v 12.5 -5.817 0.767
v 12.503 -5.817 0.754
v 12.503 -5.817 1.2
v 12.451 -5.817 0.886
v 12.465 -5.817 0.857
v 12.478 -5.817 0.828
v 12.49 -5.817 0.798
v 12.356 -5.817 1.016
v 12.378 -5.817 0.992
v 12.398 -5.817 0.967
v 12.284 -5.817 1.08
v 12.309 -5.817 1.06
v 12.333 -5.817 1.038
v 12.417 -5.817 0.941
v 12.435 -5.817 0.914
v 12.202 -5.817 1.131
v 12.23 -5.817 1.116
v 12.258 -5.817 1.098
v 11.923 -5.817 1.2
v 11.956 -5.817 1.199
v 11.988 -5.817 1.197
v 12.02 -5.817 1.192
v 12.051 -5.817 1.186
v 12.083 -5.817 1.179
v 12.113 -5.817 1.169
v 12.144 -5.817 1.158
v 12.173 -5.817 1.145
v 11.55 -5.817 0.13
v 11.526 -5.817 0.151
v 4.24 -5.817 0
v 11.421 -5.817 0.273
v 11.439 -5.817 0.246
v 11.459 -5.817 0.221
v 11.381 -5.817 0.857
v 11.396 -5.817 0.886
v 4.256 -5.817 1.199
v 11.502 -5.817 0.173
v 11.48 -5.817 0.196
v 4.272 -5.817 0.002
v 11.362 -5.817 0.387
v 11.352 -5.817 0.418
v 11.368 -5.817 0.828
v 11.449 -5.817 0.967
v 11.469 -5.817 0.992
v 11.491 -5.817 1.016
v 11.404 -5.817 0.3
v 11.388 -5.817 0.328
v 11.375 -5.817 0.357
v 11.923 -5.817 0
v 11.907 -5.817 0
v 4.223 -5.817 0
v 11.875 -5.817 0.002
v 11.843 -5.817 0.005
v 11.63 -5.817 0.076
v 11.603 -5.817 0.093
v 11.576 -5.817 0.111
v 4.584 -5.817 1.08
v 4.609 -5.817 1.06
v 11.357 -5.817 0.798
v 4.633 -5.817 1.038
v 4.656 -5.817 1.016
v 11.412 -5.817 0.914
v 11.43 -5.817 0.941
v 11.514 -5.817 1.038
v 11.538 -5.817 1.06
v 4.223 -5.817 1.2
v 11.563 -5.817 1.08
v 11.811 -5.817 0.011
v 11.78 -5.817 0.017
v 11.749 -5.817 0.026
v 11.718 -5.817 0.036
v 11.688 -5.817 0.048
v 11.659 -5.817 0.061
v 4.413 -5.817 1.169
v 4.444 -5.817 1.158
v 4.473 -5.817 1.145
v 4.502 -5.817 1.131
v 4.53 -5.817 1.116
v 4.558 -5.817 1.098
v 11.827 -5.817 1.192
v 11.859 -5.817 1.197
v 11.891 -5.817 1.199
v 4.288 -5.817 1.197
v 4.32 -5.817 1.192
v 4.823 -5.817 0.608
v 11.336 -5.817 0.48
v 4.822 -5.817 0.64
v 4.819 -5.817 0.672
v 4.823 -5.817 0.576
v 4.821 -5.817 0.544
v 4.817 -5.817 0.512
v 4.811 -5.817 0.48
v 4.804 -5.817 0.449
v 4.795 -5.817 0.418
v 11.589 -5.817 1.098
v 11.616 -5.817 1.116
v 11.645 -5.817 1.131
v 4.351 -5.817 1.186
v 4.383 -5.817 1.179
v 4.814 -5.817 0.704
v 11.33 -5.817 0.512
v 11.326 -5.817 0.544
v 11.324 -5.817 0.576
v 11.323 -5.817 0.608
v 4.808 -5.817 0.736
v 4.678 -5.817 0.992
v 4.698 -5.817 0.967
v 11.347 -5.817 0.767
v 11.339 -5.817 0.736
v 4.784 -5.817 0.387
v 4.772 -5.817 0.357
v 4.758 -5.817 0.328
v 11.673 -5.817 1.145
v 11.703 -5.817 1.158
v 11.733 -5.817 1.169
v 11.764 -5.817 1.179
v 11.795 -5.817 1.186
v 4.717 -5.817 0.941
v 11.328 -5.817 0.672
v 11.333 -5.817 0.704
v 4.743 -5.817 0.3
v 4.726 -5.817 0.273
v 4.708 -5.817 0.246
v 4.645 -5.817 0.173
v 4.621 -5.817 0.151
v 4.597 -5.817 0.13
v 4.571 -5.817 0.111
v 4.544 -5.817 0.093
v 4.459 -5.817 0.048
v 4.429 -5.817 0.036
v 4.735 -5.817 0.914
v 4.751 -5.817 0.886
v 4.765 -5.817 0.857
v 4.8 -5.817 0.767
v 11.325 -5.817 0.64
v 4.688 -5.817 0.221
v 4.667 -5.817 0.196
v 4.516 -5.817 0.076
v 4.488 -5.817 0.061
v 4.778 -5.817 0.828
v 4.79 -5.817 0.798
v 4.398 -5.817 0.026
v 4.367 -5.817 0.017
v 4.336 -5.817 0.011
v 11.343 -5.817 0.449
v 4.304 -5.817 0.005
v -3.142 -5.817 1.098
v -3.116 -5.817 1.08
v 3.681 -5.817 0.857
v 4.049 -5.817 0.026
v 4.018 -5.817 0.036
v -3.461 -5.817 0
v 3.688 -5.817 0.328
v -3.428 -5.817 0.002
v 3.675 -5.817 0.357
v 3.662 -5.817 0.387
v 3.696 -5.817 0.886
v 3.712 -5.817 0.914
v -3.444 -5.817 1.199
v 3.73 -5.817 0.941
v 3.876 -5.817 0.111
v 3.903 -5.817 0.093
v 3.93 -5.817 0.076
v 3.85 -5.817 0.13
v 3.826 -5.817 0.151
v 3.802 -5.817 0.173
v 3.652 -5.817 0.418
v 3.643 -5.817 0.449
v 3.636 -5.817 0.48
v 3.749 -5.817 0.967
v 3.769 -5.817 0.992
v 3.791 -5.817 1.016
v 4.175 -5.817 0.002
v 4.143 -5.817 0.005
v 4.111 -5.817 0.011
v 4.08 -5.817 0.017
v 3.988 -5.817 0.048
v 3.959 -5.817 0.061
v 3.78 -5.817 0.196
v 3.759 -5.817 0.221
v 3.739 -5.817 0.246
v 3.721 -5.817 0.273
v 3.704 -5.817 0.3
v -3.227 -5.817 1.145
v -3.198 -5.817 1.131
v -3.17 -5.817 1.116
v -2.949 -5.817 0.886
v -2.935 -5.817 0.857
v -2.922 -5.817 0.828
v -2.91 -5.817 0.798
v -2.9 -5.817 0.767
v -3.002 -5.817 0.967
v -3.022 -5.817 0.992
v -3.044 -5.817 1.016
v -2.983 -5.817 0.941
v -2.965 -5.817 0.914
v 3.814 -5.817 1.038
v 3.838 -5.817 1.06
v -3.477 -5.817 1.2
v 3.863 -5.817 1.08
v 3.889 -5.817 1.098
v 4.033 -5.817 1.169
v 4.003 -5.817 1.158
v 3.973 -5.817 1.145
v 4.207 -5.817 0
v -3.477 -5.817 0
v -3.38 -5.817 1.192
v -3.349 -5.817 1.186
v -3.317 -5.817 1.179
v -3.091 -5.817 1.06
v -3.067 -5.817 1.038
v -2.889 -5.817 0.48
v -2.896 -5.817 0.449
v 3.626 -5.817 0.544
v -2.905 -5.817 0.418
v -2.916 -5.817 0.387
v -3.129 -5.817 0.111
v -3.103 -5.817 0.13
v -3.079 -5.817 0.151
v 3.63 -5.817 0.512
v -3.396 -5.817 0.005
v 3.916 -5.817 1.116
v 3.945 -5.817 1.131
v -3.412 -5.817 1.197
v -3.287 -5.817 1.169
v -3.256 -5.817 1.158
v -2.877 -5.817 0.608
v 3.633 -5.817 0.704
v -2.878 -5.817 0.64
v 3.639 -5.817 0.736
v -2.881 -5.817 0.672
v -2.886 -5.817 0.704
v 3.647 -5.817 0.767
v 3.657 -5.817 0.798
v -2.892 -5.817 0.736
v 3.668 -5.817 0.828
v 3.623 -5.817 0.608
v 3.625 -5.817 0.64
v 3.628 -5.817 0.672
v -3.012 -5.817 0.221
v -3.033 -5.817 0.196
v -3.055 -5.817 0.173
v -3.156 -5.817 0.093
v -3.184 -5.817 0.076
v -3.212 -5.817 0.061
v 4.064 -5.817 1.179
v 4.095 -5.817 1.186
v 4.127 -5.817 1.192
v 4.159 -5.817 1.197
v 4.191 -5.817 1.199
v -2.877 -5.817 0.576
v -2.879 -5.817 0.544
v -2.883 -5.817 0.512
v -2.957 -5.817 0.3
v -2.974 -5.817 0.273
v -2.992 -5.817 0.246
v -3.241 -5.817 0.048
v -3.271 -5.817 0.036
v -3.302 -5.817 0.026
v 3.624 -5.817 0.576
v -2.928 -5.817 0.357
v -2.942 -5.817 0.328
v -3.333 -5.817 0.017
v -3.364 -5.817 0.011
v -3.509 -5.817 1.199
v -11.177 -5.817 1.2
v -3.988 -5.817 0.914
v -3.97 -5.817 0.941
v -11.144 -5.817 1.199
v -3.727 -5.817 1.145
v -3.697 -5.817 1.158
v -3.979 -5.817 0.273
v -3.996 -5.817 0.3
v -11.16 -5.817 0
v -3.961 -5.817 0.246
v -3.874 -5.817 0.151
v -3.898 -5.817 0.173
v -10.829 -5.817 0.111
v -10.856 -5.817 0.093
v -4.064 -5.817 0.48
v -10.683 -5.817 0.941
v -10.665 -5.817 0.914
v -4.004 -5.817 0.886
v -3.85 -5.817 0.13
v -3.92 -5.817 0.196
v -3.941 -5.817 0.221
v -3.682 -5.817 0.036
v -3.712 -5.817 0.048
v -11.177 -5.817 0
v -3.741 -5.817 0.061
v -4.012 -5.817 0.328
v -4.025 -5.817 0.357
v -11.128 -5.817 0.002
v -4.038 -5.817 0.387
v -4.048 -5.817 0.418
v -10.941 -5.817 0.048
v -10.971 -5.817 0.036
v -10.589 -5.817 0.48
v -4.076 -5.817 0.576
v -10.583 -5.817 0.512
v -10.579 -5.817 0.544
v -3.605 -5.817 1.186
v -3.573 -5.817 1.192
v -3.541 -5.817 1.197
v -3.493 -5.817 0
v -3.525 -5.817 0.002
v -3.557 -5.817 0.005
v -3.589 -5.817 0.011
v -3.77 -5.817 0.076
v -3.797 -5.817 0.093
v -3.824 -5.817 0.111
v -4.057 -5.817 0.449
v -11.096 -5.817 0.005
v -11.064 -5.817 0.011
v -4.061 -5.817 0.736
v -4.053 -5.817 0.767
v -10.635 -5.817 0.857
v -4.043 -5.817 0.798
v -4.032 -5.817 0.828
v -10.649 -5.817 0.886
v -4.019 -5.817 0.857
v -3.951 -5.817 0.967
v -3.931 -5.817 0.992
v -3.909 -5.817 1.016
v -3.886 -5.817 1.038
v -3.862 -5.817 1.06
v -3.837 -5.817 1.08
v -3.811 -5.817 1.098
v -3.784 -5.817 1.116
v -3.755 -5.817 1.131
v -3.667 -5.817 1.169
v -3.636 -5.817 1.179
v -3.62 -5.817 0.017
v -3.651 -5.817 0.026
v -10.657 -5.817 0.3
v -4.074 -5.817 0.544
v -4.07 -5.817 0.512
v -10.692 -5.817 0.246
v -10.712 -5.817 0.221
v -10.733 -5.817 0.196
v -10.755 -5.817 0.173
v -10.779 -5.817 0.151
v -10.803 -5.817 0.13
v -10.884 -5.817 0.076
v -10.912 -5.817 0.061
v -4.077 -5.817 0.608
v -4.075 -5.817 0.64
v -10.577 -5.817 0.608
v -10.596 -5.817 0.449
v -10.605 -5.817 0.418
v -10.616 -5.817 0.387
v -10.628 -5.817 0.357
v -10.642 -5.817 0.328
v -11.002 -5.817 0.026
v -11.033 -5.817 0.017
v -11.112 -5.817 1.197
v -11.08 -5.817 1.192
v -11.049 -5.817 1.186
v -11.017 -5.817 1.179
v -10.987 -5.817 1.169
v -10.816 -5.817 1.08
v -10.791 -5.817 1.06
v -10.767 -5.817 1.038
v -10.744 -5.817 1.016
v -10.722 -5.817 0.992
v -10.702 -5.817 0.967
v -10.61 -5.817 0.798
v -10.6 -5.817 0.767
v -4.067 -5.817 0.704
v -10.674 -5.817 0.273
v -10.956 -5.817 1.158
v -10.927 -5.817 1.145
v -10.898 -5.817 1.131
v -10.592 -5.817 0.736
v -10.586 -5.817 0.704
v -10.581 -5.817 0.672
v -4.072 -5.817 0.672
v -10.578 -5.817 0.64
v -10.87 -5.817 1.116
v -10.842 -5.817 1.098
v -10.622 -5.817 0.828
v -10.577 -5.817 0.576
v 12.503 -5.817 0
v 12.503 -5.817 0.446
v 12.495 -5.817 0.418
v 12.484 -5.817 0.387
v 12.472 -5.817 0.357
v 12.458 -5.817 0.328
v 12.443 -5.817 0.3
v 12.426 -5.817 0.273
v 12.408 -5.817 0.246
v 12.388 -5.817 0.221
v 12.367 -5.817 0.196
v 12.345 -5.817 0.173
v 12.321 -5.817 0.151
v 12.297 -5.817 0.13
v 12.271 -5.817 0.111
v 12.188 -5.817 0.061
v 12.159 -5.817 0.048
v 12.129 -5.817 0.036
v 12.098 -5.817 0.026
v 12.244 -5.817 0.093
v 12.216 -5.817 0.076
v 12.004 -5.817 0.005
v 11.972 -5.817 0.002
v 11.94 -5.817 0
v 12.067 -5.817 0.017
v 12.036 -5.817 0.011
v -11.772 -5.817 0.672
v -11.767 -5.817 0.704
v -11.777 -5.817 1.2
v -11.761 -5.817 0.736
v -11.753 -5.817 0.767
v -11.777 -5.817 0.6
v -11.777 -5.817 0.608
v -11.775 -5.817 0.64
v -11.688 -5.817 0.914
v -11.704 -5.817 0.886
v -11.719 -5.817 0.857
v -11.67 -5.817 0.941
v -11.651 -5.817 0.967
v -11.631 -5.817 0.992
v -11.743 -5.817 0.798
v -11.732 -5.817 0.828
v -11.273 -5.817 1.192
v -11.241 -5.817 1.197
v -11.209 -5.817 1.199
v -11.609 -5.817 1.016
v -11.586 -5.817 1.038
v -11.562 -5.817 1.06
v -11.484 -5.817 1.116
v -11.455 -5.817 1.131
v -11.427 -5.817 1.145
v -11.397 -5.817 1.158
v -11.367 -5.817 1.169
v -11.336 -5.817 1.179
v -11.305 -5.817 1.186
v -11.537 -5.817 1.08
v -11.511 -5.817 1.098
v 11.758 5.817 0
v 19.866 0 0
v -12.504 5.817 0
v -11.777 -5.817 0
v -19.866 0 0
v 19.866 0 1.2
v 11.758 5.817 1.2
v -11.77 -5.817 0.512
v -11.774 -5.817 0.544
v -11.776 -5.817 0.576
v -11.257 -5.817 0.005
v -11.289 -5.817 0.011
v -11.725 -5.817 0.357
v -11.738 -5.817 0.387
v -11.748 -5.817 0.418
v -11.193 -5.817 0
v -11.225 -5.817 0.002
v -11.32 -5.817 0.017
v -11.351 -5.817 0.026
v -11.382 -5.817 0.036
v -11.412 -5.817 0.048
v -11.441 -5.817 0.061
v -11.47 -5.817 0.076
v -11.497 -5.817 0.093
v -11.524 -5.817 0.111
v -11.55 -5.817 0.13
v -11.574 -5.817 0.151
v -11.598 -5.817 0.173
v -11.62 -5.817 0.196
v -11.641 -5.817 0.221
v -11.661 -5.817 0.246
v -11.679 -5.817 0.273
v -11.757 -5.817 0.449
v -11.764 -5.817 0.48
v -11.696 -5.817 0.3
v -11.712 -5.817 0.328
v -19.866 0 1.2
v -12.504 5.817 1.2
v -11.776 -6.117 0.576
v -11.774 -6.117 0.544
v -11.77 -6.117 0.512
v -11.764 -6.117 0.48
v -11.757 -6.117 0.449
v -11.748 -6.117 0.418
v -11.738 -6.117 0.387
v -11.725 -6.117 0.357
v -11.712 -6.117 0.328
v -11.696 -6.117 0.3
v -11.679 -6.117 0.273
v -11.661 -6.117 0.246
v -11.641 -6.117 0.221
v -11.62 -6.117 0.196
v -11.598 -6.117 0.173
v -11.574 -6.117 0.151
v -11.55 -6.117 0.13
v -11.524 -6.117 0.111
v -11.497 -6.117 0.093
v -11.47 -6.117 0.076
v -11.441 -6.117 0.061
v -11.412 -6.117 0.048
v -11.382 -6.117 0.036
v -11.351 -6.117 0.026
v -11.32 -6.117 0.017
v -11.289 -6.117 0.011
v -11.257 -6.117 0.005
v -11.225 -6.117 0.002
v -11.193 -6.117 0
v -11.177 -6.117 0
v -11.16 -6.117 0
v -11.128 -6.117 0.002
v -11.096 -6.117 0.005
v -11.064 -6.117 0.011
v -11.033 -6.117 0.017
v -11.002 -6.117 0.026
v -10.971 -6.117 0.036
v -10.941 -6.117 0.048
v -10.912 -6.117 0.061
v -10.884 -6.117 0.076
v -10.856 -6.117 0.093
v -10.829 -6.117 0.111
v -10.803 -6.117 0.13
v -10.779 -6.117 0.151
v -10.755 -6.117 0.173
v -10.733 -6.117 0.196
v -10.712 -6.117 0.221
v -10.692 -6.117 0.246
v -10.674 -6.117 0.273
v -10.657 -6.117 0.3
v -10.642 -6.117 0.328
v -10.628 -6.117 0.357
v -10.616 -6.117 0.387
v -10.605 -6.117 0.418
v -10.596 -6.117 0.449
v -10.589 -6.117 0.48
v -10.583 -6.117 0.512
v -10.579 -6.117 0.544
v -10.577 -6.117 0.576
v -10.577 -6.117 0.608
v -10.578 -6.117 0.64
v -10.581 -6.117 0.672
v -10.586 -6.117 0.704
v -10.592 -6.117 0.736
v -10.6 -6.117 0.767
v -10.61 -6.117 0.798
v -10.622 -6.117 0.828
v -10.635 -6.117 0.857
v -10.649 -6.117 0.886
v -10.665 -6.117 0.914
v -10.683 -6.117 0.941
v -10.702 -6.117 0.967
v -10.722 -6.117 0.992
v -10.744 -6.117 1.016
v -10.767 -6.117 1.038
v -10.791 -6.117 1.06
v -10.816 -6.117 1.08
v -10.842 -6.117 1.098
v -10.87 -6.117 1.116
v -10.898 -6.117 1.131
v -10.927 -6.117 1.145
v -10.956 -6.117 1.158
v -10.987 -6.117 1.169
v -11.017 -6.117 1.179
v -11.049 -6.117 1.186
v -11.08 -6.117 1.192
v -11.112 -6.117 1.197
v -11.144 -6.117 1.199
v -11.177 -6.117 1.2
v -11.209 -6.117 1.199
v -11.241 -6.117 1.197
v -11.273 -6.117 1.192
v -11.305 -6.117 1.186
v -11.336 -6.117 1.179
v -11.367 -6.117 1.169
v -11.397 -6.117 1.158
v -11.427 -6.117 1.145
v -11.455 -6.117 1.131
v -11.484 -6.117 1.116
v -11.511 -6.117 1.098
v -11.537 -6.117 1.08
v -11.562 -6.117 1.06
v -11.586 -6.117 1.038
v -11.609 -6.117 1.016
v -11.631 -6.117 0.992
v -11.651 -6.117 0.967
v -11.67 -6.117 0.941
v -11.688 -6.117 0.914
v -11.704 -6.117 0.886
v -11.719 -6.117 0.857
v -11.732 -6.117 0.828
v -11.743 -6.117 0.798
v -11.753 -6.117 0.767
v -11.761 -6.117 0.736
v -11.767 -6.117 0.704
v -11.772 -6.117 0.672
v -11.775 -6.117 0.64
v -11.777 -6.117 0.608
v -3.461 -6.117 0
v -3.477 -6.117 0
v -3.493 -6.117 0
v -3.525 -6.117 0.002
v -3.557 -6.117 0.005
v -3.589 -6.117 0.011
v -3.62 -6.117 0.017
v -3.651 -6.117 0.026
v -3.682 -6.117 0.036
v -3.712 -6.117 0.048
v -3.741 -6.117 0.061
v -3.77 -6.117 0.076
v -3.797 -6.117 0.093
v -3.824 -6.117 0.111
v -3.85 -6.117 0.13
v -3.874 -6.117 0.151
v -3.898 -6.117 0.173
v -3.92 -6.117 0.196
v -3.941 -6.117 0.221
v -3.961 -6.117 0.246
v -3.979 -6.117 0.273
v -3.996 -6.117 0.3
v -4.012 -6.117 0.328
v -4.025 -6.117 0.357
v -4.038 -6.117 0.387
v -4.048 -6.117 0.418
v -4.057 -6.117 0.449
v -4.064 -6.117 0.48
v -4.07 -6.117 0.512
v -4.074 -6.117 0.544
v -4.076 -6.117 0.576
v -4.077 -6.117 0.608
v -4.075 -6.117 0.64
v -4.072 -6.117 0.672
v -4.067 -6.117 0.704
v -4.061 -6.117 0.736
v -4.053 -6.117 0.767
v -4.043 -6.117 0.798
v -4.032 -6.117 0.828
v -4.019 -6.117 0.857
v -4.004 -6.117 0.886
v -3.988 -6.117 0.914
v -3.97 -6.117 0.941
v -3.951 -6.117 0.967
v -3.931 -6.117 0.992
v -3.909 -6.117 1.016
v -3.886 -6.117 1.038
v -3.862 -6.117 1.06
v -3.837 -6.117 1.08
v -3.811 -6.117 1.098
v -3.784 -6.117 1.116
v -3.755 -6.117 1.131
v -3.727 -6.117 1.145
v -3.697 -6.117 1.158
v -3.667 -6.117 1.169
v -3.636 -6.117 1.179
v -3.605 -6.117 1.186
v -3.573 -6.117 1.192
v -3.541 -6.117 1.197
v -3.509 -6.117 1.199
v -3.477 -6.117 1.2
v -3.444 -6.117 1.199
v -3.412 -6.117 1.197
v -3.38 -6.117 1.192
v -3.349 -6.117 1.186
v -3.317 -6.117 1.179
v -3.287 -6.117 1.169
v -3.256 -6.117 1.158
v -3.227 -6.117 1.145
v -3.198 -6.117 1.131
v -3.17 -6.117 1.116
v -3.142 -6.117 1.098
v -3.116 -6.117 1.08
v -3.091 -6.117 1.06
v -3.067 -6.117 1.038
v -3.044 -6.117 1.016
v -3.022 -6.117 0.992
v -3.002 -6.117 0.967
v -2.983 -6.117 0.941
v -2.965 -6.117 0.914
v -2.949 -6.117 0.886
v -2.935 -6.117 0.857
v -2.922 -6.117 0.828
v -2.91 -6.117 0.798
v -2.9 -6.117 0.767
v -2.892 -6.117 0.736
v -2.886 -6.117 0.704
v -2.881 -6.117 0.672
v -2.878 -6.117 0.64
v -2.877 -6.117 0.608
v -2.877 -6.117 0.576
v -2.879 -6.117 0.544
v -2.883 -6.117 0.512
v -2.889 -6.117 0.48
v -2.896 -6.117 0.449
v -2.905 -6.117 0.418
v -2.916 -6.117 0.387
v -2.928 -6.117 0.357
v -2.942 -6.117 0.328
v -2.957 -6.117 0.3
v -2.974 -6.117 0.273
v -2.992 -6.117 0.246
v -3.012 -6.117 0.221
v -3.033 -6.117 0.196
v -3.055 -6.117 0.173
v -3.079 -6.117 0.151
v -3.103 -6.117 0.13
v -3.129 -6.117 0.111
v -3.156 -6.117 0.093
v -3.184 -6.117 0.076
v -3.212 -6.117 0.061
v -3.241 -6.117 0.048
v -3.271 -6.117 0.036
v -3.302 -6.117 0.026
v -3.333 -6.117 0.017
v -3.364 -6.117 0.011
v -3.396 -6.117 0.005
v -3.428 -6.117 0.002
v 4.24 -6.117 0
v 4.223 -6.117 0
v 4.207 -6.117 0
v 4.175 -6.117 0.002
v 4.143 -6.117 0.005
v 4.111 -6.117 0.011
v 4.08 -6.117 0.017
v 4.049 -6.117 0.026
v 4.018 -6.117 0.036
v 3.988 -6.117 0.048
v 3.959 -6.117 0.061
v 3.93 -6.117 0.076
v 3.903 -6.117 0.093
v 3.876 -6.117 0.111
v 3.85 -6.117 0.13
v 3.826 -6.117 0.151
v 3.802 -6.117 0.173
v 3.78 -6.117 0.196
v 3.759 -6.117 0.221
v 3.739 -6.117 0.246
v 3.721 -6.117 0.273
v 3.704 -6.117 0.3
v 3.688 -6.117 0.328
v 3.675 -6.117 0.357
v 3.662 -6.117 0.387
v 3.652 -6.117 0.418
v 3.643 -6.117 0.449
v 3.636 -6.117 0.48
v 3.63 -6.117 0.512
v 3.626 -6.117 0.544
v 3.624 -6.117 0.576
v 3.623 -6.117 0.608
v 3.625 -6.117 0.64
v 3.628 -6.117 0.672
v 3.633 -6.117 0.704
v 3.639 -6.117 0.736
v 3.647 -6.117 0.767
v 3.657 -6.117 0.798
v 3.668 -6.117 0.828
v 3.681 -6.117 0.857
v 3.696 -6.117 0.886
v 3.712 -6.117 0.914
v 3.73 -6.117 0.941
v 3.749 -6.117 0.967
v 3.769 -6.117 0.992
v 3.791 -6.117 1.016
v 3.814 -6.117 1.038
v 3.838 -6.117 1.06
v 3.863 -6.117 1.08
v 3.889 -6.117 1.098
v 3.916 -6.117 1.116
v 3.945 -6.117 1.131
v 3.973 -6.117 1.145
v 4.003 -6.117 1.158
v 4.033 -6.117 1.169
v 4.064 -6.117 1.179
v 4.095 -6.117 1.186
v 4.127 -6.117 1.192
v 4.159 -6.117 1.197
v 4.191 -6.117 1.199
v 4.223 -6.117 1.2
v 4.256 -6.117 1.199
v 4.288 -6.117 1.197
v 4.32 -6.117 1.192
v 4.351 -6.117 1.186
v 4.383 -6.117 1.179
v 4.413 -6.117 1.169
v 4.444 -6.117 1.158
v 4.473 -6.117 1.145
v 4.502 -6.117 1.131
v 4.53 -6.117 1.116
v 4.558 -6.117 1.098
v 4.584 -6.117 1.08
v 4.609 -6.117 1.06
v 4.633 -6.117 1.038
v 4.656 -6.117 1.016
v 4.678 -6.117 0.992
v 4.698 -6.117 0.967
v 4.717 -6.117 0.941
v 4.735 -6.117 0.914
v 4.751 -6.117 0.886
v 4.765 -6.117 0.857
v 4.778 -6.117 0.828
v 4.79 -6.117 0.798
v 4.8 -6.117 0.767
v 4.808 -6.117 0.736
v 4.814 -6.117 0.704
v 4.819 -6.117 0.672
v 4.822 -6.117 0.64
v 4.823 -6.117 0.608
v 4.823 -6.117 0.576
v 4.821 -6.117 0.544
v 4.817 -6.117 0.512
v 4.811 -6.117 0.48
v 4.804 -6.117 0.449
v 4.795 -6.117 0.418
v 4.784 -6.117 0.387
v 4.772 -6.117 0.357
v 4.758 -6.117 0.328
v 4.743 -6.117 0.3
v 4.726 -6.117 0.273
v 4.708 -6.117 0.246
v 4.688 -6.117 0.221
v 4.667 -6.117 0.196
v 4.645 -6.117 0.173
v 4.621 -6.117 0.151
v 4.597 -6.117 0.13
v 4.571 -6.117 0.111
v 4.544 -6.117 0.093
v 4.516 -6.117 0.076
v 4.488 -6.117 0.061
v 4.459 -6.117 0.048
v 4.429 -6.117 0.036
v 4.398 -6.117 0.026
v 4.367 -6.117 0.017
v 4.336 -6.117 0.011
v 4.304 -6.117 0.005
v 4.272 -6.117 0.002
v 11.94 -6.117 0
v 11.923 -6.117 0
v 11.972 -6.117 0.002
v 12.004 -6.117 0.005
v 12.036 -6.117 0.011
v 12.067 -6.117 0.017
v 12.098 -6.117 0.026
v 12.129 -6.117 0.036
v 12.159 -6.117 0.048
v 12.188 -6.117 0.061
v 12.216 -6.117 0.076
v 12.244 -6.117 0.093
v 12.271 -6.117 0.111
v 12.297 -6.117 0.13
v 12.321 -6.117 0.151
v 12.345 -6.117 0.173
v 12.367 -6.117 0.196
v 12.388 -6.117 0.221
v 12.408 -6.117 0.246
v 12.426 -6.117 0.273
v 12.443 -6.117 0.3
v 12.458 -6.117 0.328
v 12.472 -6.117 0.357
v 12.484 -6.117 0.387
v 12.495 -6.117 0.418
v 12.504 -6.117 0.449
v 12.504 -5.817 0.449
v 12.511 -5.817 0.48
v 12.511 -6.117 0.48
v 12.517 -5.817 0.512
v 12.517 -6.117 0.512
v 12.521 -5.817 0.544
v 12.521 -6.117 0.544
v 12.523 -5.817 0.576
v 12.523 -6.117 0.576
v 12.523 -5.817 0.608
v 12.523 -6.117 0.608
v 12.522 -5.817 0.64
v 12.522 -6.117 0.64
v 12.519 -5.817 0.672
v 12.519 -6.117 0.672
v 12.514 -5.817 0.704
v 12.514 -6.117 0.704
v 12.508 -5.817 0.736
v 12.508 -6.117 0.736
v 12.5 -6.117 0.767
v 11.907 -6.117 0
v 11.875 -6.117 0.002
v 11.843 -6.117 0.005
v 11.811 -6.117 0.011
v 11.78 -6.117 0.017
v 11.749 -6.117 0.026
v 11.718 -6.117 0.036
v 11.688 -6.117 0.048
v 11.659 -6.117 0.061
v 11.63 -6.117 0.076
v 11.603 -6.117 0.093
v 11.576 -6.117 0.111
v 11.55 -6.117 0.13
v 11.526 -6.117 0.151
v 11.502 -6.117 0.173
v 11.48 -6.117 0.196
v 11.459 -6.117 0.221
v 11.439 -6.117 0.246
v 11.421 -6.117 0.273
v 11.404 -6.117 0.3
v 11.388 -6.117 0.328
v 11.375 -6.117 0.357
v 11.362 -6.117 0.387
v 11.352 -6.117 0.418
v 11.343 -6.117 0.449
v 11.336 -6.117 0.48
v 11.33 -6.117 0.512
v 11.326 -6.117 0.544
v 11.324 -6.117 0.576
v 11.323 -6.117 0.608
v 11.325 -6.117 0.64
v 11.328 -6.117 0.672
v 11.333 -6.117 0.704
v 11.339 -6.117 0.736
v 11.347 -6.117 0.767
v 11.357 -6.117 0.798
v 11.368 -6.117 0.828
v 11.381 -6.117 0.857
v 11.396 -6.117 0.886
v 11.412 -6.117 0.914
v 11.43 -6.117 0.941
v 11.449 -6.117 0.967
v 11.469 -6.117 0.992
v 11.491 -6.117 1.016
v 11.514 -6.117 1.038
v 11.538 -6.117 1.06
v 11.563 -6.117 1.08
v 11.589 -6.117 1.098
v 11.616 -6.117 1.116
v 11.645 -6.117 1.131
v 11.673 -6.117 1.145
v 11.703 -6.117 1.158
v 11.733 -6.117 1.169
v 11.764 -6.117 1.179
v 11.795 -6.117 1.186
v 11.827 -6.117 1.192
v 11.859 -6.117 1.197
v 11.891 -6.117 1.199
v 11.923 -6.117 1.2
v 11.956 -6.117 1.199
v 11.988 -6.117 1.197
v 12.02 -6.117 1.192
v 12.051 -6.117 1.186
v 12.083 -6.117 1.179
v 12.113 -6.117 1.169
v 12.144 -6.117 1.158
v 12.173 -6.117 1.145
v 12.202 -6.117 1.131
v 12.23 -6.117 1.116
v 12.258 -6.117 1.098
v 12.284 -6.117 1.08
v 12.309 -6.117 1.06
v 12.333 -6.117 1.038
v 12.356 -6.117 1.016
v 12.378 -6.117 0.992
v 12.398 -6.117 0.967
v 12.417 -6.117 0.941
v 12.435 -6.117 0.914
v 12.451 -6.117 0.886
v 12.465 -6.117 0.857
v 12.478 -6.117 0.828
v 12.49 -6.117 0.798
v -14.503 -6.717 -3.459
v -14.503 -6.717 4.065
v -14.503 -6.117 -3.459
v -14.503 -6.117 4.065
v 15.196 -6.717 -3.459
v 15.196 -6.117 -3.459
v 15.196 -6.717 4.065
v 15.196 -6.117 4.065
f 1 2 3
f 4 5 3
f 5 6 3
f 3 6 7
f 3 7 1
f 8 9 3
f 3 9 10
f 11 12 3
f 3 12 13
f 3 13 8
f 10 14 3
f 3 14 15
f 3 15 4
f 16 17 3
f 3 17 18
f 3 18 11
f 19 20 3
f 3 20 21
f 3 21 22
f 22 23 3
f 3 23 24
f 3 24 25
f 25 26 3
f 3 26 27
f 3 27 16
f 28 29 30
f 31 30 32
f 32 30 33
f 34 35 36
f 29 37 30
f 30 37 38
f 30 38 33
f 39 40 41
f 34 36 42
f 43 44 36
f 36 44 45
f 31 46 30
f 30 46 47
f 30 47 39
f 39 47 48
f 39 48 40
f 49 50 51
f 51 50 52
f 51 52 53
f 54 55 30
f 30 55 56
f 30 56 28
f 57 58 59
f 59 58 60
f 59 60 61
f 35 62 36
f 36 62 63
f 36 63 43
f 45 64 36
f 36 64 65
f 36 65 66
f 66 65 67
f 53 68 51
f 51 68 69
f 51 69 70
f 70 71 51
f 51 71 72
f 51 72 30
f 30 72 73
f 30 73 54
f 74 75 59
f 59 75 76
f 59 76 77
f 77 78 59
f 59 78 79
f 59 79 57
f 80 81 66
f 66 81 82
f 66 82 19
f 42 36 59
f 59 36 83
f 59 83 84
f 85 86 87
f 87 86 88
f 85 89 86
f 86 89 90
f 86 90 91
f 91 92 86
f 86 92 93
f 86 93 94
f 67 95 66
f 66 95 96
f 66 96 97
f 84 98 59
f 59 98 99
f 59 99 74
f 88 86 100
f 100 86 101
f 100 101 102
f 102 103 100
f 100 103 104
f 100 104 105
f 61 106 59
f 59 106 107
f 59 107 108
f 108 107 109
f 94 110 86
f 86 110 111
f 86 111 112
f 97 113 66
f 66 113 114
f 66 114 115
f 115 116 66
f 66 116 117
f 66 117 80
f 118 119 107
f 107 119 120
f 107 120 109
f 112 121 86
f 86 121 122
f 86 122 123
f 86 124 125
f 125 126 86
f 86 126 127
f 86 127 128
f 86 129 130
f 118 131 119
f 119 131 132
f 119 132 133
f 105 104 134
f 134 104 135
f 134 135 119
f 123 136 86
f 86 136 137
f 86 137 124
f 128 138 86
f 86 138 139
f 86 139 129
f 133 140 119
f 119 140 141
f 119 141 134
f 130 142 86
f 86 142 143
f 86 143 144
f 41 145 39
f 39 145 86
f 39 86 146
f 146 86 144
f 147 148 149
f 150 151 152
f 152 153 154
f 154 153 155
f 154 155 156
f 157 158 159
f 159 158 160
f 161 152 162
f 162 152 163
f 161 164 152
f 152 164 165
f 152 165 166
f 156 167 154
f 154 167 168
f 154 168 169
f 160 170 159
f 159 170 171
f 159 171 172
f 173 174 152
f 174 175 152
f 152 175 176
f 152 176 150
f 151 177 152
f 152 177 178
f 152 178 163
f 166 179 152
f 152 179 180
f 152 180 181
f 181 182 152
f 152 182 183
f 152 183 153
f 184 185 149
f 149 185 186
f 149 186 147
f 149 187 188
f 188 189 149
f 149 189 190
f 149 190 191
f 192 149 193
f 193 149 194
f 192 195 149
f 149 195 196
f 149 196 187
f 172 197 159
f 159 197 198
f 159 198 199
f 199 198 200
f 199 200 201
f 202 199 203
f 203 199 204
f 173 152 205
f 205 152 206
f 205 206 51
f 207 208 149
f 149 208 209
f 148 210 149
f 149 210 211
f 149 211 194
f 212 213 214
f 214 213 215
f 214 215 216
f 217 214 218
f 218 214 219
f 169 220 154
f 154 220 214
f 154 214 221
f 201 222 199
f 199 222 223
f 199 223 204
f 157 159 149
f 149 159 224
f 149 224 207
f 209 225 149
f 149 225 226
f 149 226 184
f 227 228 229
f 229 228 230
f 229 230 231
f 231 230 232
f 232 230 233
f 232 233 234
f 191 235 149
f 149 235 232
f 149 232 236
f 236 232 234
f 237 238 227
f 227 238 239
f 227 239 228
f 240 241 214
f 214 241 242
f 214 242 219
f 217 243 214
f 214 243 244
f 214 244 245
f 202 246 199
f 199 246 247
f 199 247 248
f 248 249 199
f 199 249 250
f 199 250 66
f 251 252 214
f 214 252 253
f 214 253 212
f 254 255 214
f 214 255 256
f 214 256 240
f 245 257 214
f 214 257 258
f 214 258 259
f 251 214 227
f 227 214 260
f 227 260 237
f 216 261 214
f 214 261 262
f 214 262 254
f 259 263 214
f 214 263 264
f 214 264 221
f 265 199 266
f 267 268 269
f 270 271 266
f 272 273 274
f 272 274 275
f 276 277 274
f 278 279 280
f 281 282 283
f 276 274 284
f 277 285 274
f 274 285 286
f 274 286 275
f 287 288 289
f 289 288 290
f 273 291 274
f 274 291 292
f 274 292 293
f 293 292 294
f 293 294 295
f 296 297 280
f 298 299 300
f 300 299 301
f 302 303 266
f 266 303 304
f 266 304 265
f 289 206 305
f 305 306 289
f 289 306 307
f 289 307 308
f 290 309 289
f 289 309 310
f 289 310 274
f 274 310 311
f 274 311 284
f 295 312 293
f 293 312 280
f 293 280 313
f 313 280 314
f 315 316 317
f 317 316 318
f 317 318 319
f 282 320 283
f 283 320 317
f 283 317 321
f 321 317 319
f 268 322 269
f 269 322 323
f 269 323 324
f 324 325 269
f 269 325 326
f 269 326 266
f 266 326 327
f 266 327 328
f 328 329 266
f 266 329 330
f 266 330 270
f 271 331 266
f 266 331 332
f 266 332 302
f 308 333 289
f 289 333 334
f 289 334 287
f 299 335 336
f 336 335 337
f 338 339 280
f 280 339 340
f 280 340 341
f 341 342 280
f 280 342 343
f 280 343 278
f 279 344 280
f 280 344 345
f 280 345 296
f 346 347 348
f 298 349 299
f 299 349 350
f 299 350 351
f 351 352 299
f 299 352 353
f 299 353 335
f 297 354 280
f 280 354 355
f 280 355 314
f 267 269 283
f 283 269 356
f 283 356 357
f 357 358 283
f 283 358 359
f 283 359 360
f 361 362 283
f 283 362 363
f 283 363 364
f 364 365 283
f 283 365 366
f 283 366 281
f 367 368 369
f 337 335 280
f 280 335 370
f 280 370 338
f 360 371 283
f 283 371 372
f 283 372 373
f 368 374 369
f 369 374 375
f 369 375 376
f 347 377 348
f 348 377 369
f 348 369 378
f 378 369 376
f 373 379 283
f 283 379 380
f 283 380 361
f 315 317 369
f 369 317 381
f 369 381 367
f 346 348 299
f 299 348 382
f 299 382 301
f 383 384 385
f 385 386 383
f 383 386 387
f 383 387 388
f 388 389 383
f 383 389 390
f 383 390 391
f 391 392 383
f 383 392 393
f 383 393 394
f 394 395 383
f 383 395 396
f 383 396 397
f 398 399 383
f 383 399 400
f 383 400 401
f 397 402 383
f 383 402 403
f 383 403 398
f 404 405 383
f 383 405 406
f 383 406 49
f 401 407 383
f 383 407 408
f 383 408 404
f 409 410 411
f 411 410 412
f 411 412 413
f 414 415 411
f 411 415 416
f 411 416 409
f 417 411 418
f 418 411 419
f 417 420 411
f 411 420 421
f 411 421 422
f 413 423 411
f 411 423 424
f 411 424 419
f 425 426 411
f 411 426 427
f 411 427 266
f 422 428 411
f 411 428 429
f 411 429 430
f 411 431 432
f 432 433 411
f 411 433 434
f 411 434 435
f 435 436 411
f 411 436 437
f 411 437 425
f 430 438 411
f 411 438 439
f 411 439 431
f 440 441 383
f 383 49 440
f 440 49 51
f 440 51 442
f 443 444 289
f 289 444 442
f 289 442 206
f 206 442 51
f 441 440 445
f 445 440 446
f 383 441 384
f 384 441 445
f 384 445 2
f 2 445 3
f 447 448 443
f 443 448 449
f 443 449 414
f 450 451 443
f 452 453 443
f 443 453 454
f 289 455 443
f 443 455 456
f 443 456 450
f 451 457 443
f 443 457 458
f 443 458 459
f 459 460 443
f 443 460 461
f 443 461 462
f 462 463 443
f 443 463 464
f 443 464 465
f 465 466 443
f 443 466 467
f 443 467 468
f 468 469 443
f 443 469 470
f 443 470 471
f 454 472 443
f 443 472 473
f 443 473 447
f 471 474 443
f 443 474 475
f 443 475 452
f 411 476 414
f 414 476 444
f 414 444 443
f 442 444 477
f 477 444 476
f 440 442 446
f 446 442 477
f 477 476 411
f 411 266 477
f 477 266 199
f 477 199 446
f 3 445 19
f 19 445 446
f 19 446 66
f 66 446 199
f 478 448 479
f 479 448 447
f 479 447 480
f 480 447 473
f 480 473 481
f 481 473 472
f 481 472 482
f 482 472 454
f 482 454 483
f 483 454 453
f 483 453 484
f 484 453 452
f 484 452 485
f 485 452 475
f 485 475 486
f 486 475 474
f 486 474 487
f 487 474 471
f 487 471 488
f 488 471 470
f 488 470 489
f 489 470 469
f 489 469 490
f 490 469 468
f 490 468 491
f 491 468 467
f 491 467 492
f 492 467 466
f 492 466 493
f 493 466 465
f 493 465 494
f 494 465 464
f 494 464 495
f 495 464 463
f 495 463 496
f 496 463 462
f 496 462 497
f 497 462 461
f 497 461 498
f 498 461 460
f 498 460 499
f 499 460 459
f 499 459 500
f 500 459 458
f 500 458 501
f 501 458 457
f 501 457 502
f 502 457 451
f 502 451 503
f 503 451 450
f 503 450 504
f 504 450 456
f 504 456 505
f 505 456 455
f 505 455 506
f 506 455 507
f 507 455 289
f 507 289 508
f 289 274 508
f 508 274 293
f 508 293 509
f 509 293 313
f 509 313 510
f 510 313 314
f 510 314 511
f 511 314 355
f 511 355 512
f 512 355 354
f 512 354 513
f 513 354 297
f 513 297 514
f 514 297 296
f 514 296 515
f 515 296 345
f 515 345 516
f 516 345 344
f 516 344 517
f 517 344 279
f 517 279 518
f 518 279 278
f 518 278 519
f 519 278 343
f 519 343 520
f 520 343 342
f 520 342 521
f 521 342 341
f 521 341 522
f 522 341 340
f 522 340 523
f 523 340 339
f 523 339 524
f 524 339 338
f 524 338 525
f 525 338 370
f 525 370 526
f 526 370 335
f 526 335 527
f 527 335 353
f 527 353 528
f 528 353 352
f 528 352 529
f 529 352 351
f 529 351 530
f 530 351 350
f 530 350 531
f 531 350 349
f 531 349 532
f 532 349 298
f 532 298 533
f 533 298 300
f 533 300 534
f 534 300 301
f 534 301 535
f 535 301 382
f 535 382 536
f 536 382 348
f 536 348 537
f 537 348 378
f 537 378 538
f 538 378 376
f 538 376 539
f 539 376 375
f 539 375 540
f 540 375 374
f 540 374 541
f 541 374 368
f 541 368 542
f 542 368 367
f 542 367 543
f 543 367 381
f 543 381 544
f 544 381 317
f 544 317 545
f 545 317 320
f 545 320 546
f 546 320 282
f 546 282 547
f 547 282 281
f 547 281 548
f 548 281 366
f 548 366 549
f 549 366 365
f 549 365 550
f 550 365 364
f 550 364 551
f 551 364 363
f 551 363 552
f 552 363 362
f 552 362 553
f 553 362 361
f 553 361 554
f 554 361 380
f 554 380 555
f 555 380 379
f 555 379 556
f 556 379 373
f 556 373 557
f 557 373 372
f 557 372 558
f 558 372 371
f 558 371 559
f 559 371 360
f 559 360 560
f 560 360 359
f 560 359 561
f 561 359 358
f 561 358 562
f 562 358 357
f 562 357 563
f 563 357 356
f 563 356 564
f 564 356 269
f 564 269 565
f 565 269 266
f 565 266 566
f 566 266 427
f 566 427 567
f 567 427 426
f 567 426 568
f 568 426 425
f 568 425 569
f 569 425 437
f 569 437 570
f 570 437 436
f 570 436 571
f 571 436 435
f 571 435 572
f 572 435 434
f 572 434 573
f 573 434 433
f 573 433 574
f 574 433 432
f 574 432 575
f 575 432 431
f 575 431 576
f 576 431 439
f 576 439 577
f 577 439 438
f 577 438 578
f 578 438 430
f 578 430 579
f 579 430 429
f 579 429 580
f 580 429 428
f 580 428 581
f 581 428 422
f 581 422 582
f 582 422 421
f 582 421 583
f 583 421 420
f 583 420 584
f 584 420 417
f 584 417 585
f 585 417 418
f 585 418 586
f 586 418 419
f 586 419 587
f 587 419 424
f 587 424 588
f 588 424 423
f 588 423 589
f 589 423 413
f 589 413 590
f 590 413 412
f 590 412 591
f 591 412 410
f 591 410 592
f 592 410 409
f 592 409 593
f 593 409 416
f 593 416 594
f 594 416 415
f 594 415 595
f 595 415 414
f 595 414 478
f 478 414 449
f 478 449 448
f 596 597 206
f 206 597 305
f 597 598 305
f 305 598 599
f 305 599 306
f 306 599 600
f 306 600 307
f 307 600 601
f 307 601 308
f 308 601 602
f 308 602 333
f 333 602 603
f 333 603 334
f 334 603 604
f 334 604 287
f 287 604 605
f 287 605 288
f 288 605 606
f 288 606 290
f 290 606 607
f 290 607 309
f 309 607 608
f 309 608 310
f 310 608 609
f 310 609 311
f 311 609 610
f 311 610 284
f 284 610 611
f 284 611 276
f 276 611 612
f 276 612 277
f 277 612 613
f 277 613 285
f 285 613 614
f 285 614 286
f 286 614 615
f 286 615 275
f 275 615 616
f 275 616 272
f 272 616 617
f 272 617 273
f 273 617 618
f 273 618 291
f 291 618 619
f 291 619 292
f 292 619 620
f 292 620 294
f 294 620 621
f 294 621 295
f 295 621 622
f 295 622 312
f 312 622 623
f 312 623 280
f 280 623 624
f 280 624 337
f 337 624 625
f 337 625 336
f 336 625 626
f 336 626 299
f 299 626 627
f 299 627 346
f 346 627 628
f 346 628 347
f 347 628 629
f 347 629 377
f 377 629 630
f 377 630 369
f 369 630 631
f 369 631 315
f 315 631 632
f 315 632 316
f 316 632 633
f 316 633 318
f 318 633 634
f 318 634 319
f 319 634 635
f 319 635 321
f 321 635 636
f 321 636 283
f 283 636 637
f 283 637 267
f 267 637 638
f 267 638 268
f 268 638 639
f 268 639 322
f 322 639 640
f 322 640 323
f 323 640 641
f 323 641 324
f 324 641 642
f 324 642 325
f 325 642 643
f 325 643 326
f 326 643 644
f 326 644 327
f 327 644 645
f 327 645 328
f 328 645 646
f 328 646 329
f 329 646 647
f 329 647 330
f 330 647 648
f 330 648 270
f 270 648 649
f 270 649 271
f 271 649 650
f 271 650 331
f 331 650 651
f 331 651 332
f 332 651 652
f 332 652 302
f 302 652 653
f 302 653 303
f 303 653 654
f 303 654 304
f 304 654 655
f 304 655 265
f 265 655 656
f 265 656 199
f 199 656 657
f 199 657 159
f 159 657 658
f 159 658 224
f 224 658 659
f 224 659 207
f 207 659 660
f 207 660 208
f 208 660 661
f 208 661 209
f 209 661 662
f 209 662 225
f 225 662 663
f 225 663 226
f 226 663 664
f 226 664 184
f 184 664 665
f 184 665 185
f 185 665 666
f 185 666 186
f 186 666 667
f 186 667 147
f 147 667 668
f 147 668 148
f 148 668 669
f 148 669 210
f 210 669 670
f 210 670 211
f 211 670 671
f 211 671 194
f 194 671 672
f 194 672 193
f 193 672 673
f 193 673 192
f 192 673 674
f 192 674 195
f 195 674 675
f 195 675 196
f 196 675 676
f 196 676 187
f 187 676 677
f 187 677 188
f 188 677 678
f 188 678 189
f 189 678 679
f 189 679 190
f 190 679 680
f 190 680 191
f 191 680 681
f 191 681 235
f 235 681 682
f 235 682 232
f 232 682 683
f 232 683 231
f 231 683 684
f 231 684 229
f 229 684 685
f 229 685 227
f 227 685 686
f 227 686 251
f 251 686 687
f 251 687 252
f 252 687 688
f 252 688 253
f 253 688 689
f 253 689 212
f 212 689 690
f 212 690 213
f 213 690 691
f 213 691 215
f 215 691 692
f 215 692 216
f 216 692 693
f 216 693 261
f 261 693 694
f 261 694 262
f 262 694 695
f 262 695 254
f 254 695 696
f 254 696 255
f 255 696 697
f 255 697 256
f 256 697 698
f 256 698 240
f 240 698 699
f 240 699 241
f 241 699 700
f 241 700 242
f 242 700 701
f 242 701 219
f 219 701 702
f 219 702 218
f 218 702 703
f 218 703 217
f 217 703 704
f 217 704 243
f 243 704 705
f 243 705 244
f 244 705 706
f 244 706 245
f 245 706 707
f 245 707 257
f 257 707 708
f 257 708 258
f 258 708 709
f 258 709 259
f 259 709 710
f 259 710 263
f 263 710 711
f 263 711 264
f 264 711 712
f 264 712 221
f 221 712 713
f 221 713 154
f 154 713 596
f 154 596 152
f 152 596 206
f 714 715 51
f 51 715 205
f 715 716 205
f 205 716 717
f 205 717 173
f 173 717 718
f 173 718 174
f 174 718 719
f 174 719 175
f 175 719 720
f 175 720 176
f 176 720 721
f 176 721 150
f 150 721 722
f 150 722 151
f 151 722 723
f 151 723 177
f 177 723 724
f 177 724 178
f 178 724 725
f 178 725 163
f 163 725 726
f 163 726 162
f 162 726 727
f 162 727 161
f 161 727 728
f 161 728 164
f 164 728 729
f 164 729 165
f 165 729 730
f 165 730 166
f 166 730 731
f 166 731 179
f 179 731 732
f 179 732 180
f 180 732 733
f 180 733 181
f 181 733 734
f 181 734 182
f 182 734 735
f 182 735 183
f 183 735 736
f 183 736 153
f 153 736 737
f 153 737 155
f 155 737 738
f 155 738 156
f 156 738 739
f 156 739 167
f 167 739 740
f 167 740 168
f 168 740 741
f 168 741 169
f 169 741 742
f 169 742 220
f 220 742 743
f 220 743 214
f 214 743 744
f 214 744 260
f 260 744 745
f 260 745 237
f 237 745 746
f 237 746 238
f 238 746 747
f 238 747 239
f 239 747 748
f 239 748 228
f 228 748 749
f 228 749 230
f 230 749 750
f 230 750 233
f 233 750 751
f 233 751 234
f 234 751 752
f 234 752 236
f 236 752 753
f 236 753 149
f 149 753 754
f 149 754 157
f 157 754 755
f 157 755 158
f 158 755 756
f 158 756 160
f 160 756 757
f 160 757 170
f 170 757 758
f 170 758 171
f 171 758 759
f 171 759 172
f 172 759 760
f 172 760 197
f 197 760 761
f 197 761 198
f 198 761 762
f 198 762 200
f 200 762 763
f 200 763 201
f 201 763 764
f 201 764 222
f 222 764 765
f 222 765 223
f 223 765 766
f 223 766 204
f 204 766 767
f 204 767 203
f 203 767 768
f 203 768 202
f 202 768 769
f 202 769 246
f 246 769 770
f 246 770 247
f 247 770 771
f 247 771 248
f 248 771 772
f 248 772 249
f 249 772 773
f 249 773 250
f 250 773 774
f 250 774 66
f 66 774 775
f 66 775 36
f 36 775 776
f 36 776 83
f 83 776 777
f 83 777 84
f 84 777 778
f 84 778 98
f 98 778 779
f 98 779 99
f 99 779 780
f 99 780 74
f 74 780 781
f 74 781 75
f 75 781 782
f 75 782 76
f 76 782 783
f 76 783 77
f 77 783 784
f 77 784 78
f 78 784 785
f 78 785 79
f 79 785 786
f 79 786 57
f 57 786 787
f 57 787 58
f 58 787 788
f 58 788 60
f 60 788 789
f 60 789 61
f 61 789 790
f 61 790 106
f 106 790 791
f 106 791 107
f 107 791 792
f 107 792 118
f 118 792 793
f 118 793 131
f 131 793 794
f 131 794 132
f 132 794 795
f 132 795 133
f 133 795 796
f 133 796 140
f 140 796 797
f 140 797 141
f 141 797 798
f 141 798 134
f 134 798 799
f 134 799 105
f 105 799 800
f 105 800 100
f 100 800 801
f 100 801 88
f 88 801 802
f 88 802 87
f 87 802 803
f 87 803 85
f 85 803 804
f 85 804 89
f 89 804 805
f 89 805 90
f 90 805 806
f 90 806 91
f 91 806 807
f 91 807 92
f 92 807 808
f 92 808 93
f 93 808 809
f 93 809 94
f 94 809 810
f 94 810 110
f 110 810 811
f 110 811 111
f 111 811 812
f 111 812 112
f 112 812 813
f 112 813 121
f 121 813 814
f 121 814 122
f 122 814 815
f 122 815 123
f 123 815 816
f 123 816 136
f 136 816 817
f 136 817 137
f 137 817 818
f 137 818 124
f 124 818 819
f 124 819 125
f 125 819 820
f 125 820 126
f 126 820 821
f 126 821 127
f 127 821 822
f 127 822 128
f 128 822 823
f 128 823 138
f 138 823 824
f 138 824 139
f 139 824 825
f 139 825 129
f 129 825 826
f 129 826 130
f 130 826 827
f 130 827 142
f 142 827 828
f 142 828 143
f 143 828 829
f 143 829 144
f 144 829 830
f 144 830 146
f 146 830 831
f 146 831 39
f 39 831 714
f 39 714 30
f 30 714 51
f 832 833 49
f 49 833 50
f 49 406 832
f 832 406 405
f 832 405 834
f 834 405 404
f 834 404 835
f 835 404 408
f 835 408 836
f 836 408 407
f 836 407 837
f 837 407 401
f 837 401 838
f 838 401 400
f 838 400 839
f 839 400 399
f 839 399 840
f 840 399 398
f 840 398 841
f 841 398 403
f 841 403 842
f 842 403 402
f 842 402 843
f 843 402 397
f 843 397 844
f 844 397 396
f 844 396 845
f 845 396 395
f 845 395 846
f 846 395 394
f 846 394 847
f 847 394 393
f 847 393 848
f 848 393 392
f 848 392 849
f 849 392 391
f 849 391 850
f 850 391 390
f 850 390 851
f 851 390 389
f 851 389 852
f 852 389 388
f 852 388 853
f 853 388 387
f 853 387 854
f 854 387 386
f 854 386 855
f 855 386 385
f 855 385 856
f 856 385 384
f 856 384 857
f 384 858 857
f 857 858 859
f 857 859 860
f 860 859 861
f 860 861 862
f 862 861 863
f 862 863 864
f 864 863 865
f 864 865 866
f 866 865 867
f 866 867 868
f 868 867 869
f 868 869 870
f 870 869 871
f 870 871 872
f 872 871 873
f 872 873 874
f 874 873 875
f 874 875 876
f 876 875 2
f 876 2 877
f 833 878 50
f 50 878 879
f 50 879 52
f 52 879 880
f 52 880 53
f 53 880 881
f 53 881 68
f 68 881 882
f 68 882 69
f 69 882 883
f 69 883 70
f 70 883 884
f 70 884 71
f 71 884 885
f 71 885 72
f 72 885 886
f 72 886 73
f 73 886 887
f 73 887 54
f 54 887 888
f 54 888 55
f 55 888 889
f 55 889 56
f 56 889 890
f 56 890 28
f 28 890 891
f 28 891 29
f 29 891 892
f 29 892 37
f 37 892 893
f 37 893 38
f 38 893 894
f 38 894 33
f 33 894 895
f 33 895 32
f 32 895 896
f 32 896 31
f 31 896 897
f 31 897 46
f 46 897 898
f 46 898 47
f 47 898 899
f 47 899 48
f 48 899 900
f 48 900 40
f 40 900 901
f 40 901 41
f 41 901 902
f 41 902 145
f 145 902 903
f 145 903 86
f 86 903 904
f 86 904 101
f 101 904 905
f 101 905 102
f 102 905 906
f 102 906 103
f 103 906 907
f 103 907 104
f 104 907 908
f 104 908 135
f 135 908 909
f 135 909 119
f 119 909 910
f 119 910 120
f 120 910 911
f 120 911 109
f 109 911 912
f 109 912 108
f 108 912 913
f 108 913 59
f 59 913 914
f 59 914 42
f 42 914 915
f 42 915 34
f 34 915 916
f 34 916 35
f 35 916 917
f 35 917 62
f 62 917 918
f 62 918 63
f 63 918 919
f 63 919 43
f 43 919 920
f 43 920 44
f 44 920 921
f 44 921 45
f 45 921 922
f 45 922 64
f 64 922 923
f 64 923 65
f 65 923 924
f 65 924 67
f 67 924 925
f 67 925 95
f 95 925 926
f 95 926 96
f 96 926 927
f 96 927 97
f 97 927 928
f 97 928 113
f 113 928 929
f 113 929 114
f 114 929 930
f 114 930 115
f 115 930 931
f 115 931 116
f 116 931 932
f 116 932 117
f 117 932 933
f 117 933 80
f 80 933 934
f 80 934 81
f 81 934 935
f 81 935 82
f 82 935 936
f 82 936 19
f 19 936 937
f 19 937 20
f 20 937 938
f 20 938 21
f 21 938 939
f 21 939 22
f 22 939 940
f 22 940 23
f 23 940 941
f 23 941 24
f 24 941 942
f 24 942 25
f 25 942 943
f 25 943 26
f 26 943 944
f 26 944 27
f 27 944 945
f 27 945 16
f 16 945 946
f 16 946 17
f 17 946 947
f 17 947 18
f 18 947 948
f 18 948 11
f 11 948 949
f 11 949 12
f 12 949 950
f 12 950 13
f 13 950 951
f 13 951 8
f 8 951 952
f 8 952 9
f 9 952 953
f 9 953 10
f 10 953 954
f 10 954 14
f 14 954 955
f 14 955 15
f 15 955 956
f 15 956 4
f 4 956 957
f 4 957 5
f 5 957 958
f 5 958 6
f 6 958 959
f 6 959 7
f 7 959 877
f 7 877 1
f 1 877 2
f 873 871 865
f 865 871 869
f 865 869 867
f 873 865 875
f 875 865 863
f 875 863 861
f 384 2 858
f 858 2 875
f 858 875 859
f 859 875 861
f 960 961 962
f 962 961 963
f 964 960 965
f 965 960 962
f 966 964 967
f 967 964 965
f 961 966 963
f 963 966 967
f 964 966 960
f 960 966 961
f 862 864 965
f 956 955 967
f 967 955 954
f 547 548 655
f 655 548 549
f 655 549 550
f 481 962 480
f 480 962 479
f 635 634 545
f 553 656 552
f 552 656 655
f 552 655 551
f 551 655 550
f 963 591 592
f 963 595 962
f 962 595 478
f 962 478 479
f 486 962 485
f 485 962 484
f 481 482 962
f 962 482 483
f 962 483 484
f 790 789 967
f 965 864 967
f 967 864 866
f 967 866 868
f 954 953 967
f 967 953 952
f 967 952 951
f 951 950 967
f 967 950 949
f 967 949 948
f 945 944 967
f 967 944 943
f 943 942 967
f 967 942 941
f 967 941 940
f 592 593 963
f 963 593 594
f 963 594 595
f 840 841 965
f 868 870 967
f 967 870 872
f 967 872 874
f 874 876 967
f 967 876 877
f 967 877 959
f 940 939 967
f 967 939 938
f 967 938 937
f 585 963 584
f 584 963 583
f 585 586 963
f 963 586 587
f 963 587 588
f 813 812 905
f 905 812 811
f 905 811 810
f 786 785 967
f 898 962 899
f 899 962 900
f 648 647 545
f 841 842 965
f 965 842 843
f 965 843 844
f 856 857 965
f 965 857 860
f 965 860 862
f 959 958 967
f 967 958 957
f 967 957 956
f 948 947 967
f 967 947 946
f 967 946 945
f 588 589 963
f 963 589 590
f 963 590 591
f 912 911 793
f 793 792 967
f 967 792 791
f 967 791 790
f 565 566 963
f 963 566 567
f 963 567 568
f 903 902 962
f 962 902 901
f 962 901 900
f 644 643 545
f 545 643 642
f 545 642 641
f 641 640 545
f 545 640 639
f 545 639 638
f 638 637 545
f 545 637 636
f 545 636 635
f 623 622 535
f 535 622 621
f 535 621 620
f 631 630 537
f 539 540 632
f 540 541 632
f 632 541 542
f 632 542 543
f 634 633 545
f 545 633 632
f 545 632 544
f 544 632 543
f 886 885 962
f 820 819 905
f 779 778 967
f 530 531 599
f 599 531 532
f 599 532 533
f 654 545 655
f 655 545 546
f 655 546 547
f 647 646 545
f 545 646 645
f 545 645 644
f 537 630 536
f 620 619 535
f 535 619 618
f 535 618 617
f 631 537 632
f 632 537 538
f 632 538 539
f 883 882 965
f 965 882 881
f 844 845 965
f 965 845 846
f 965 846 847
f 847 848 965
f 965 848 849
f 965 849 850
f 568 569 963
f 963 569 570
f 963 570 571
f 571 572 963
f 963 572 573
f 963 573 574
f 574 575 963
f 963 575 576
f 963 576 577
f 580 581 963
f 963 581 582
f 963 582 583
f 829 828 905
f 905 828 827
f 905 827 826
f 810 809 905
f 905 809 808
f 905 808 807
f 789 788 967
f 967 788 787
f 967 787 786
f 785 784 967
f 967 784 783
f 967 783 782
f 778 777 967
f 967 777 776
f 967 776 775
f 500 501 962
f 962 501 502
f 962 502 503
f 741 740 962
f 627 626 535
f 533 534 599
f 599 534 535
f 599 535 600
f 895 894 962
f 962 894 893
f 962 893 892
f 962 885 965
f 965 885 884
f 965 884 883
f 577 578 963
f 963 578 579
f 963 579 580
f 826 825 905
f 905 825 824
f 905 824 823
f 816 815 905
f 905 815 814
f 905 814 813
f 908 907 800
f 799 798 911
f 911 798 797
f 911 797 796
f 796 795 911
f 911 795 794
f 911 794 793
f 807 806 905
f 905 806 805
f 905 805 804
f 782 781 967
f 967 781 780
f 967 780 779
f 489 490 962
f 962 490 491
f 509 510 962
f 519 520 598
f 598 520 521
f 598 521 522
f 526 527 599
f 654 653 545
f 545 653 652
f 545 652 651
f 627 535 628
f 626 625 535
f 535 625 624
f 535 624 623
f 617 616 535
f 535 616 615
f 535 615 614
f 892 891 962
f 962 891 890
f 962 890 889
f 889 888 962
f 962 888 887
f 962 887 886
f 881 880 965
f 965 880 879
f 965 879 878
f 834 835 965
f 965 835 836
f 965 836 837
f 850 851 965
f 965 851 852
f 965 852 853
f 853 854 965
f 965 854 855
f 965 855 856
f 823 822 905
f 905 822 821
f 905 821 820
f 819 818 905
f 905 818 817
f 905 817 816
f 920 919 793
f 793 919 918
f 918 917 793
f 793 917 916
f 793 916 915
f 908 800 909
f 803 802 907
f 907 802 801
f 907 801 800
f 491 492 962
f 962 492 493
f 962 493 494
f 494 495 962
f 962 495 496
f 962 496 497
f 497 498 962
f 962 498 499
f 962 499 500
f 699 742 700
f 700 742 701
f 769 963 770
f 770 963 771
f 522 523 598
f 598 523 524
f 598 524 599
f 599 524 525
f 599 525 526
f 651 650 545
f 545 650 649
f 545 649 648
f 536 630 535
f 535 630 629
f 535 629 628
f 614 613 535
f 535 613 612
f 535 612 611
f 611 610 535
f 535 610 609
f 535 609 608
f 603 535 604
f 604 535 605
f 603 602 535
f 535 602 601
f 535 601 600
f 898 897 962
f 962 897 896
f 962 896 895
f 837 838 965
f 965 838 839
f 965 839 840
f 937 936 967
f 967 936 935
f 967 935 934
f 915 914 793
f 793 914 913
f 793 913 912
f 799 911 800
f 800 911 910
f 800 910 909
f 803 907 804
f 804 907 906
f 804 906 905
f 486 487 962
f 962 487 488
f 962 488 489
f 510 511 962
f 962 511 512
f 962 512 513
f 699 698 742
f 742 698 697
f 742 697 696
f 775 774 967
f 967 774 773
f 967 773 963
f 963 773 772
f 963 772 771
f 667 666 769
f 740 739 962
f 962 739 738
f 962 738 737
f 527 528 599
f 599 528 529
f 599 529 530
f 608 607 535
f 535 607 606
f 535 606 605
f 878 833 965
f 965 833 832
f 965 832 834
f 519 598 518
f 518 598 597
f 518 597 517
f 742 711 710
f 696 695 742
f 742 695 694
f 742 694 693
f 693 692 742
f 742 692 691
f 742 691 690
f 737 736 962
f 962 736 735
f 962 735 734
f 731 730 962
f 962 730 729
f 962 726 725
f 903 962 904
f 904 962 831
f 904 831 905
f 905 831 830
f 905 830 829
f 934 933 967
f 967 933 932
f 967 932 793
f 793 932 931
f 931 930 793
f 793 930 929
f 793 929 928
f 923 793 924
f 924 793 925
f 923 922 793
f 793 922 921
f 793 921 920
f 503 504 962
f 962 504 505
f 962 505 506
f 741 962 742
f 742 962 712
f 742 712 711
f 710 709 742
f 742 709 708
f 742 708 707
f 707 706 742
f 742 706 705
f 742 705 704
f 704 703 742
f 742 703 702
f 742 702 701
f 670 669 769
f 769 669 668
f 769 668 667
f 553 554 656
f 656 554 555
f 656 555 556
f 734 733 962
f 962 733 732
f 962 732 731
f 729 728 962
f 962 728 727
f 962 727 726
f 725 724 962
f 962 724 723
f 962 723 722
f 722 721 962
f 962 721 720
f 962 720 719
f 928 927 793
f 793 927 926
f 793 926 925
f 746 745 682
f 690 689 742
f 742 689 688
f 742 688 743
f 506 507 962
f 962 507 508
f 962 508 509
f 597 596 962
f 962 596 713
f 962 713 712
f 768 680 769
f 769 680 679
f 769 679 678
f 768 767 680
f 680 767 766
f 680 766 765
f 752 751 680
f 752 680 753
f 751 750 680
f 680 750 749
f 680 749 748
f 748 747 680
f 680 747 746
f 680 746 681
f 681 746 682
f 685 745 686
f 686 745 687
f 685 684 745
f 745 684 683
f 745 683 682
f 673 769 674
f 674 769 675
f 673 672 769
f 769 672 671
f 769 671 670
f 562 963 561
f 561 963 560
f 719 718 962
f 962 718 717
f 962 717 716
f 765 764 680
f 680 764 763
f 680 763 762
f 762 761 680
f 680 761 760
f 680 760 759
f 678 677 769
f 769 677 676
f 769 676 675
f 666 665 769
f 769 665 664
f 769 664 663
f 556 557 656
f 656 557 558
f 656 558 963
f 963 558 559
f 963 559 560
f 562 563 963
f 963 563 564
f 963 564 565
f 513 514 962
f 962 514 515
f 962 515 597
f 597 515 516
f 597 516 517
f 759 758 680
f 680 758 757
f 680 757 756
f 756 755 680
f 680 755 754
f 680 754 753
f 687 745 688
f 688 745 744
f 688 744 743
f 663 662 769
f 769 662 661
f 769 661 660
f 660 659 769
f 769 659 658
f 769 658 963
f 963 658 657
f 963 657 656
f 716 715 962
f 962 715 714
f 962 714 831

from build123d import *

# Parameters (mm, degrees)
EXTRUDE_1_DEPTH       = 1.2
CUT_EXTRUDE_1_DEPTH   = 1.2
CUT_EXTRUDE_1_2_DEPTH = 1.2
SKETCH_4_R            = 0.6
EXTRUDE_2_DEPTH       = 0.3
SKETCH_5_W            = 29.699213112
SKETCH_5_H            = 7.523800655
EXTRUDE_3_DEPTH       = 0.6


with BuildPart() as part:
    # Эскиз1 → Бобышка-Вытянуть1 (new body)
    with BuildSketch(Plane.XY):
        Polygon((-12.686954911, 6.182258949), (-20.530403447, -0.015033721), (-11.90549662, -6.217213911), (12.642254234, -6.217213911), (20.530403447, 0.015397813), (11.886622261, 6.217213911), (-13.761189247, 6.217213911), align=None)
    extrude(amount=EXTRUDE_1_DEPTH)

    # Эскиз2 → Cut-Extrude 1 (cut)
    with BuildSketch(Plane.XY.offset(1.2)):
        Polygon((-12.686954911, 6.182258949), (-13.761189247, 6.217213911), (-12.642715038, 6.217213911), align=None)
    extrude(amount=-CUT_EXTRUDE_1_DEPTH, mode=Mode.SUBTRACT)

    # Эскиз3 → Cut-Extrude 1 2 (cut)
    with BuildSketch(Plane.XY.offset(1.2)):
        Polygon((11.886622261, 6.217213911), (-12.642715038, 6.217213911), (-20.530403447, -0.015033721), (-11.90549662, -6.217213911), (12.642254234, -6.217213911), (20.530403447, 0.015397813), align=None)
        Polygon((11.757969034, 5.817213911), (-12.503760371, 5.817213911), (-19.866171727, 0), (-11.776608632, -5.817213911), (12.503299567, -5.817213911), (19.865710923, 0), align=None, mode=Mode.SUBTRACT)
    extrude(amount=-CUT_EXTRUDE_1_2_DEPTH, mode=Mode.SUBTRACT)

    # Эскиз4 → Бобышка-Вытянуть2 (add)
    with BuildSketch(Plane.XZ.offset(5.817213911)):
        with Locations(Location((-11.176608632, 0.6, 0), (0, 0, 270))):
            Circle(SKETCH_4_R)
        with Locations(Location((-3.476608632, 0.6, 0), (0, 0, 270))):
            Circle(SKETCH_4_R)
        with Locations(Location((4.223391368, 0.6, 0), (0, 0, 270))):
            Circle(SKETCH_4_R)
        with Locations(Location((11.923391368, 0.6, 0), (0, 0, 270))):
            Circle(SKETCH_4_R)
    extrude(amount=EXTRUDE_2_DEPTH)

    # Эскиз5 → Бобышка-Вытянуть3 (add)
    with BuildSketch(Plane.XZ.offset(6.117213911)):
        with Locations((0.346260417, 0.303007868)):
            Rectangle(SKETCH_5_W, SKETCH_5_H)
    extrude(amount=EXTRUDE_3_DEPTH)


solid = part.part
